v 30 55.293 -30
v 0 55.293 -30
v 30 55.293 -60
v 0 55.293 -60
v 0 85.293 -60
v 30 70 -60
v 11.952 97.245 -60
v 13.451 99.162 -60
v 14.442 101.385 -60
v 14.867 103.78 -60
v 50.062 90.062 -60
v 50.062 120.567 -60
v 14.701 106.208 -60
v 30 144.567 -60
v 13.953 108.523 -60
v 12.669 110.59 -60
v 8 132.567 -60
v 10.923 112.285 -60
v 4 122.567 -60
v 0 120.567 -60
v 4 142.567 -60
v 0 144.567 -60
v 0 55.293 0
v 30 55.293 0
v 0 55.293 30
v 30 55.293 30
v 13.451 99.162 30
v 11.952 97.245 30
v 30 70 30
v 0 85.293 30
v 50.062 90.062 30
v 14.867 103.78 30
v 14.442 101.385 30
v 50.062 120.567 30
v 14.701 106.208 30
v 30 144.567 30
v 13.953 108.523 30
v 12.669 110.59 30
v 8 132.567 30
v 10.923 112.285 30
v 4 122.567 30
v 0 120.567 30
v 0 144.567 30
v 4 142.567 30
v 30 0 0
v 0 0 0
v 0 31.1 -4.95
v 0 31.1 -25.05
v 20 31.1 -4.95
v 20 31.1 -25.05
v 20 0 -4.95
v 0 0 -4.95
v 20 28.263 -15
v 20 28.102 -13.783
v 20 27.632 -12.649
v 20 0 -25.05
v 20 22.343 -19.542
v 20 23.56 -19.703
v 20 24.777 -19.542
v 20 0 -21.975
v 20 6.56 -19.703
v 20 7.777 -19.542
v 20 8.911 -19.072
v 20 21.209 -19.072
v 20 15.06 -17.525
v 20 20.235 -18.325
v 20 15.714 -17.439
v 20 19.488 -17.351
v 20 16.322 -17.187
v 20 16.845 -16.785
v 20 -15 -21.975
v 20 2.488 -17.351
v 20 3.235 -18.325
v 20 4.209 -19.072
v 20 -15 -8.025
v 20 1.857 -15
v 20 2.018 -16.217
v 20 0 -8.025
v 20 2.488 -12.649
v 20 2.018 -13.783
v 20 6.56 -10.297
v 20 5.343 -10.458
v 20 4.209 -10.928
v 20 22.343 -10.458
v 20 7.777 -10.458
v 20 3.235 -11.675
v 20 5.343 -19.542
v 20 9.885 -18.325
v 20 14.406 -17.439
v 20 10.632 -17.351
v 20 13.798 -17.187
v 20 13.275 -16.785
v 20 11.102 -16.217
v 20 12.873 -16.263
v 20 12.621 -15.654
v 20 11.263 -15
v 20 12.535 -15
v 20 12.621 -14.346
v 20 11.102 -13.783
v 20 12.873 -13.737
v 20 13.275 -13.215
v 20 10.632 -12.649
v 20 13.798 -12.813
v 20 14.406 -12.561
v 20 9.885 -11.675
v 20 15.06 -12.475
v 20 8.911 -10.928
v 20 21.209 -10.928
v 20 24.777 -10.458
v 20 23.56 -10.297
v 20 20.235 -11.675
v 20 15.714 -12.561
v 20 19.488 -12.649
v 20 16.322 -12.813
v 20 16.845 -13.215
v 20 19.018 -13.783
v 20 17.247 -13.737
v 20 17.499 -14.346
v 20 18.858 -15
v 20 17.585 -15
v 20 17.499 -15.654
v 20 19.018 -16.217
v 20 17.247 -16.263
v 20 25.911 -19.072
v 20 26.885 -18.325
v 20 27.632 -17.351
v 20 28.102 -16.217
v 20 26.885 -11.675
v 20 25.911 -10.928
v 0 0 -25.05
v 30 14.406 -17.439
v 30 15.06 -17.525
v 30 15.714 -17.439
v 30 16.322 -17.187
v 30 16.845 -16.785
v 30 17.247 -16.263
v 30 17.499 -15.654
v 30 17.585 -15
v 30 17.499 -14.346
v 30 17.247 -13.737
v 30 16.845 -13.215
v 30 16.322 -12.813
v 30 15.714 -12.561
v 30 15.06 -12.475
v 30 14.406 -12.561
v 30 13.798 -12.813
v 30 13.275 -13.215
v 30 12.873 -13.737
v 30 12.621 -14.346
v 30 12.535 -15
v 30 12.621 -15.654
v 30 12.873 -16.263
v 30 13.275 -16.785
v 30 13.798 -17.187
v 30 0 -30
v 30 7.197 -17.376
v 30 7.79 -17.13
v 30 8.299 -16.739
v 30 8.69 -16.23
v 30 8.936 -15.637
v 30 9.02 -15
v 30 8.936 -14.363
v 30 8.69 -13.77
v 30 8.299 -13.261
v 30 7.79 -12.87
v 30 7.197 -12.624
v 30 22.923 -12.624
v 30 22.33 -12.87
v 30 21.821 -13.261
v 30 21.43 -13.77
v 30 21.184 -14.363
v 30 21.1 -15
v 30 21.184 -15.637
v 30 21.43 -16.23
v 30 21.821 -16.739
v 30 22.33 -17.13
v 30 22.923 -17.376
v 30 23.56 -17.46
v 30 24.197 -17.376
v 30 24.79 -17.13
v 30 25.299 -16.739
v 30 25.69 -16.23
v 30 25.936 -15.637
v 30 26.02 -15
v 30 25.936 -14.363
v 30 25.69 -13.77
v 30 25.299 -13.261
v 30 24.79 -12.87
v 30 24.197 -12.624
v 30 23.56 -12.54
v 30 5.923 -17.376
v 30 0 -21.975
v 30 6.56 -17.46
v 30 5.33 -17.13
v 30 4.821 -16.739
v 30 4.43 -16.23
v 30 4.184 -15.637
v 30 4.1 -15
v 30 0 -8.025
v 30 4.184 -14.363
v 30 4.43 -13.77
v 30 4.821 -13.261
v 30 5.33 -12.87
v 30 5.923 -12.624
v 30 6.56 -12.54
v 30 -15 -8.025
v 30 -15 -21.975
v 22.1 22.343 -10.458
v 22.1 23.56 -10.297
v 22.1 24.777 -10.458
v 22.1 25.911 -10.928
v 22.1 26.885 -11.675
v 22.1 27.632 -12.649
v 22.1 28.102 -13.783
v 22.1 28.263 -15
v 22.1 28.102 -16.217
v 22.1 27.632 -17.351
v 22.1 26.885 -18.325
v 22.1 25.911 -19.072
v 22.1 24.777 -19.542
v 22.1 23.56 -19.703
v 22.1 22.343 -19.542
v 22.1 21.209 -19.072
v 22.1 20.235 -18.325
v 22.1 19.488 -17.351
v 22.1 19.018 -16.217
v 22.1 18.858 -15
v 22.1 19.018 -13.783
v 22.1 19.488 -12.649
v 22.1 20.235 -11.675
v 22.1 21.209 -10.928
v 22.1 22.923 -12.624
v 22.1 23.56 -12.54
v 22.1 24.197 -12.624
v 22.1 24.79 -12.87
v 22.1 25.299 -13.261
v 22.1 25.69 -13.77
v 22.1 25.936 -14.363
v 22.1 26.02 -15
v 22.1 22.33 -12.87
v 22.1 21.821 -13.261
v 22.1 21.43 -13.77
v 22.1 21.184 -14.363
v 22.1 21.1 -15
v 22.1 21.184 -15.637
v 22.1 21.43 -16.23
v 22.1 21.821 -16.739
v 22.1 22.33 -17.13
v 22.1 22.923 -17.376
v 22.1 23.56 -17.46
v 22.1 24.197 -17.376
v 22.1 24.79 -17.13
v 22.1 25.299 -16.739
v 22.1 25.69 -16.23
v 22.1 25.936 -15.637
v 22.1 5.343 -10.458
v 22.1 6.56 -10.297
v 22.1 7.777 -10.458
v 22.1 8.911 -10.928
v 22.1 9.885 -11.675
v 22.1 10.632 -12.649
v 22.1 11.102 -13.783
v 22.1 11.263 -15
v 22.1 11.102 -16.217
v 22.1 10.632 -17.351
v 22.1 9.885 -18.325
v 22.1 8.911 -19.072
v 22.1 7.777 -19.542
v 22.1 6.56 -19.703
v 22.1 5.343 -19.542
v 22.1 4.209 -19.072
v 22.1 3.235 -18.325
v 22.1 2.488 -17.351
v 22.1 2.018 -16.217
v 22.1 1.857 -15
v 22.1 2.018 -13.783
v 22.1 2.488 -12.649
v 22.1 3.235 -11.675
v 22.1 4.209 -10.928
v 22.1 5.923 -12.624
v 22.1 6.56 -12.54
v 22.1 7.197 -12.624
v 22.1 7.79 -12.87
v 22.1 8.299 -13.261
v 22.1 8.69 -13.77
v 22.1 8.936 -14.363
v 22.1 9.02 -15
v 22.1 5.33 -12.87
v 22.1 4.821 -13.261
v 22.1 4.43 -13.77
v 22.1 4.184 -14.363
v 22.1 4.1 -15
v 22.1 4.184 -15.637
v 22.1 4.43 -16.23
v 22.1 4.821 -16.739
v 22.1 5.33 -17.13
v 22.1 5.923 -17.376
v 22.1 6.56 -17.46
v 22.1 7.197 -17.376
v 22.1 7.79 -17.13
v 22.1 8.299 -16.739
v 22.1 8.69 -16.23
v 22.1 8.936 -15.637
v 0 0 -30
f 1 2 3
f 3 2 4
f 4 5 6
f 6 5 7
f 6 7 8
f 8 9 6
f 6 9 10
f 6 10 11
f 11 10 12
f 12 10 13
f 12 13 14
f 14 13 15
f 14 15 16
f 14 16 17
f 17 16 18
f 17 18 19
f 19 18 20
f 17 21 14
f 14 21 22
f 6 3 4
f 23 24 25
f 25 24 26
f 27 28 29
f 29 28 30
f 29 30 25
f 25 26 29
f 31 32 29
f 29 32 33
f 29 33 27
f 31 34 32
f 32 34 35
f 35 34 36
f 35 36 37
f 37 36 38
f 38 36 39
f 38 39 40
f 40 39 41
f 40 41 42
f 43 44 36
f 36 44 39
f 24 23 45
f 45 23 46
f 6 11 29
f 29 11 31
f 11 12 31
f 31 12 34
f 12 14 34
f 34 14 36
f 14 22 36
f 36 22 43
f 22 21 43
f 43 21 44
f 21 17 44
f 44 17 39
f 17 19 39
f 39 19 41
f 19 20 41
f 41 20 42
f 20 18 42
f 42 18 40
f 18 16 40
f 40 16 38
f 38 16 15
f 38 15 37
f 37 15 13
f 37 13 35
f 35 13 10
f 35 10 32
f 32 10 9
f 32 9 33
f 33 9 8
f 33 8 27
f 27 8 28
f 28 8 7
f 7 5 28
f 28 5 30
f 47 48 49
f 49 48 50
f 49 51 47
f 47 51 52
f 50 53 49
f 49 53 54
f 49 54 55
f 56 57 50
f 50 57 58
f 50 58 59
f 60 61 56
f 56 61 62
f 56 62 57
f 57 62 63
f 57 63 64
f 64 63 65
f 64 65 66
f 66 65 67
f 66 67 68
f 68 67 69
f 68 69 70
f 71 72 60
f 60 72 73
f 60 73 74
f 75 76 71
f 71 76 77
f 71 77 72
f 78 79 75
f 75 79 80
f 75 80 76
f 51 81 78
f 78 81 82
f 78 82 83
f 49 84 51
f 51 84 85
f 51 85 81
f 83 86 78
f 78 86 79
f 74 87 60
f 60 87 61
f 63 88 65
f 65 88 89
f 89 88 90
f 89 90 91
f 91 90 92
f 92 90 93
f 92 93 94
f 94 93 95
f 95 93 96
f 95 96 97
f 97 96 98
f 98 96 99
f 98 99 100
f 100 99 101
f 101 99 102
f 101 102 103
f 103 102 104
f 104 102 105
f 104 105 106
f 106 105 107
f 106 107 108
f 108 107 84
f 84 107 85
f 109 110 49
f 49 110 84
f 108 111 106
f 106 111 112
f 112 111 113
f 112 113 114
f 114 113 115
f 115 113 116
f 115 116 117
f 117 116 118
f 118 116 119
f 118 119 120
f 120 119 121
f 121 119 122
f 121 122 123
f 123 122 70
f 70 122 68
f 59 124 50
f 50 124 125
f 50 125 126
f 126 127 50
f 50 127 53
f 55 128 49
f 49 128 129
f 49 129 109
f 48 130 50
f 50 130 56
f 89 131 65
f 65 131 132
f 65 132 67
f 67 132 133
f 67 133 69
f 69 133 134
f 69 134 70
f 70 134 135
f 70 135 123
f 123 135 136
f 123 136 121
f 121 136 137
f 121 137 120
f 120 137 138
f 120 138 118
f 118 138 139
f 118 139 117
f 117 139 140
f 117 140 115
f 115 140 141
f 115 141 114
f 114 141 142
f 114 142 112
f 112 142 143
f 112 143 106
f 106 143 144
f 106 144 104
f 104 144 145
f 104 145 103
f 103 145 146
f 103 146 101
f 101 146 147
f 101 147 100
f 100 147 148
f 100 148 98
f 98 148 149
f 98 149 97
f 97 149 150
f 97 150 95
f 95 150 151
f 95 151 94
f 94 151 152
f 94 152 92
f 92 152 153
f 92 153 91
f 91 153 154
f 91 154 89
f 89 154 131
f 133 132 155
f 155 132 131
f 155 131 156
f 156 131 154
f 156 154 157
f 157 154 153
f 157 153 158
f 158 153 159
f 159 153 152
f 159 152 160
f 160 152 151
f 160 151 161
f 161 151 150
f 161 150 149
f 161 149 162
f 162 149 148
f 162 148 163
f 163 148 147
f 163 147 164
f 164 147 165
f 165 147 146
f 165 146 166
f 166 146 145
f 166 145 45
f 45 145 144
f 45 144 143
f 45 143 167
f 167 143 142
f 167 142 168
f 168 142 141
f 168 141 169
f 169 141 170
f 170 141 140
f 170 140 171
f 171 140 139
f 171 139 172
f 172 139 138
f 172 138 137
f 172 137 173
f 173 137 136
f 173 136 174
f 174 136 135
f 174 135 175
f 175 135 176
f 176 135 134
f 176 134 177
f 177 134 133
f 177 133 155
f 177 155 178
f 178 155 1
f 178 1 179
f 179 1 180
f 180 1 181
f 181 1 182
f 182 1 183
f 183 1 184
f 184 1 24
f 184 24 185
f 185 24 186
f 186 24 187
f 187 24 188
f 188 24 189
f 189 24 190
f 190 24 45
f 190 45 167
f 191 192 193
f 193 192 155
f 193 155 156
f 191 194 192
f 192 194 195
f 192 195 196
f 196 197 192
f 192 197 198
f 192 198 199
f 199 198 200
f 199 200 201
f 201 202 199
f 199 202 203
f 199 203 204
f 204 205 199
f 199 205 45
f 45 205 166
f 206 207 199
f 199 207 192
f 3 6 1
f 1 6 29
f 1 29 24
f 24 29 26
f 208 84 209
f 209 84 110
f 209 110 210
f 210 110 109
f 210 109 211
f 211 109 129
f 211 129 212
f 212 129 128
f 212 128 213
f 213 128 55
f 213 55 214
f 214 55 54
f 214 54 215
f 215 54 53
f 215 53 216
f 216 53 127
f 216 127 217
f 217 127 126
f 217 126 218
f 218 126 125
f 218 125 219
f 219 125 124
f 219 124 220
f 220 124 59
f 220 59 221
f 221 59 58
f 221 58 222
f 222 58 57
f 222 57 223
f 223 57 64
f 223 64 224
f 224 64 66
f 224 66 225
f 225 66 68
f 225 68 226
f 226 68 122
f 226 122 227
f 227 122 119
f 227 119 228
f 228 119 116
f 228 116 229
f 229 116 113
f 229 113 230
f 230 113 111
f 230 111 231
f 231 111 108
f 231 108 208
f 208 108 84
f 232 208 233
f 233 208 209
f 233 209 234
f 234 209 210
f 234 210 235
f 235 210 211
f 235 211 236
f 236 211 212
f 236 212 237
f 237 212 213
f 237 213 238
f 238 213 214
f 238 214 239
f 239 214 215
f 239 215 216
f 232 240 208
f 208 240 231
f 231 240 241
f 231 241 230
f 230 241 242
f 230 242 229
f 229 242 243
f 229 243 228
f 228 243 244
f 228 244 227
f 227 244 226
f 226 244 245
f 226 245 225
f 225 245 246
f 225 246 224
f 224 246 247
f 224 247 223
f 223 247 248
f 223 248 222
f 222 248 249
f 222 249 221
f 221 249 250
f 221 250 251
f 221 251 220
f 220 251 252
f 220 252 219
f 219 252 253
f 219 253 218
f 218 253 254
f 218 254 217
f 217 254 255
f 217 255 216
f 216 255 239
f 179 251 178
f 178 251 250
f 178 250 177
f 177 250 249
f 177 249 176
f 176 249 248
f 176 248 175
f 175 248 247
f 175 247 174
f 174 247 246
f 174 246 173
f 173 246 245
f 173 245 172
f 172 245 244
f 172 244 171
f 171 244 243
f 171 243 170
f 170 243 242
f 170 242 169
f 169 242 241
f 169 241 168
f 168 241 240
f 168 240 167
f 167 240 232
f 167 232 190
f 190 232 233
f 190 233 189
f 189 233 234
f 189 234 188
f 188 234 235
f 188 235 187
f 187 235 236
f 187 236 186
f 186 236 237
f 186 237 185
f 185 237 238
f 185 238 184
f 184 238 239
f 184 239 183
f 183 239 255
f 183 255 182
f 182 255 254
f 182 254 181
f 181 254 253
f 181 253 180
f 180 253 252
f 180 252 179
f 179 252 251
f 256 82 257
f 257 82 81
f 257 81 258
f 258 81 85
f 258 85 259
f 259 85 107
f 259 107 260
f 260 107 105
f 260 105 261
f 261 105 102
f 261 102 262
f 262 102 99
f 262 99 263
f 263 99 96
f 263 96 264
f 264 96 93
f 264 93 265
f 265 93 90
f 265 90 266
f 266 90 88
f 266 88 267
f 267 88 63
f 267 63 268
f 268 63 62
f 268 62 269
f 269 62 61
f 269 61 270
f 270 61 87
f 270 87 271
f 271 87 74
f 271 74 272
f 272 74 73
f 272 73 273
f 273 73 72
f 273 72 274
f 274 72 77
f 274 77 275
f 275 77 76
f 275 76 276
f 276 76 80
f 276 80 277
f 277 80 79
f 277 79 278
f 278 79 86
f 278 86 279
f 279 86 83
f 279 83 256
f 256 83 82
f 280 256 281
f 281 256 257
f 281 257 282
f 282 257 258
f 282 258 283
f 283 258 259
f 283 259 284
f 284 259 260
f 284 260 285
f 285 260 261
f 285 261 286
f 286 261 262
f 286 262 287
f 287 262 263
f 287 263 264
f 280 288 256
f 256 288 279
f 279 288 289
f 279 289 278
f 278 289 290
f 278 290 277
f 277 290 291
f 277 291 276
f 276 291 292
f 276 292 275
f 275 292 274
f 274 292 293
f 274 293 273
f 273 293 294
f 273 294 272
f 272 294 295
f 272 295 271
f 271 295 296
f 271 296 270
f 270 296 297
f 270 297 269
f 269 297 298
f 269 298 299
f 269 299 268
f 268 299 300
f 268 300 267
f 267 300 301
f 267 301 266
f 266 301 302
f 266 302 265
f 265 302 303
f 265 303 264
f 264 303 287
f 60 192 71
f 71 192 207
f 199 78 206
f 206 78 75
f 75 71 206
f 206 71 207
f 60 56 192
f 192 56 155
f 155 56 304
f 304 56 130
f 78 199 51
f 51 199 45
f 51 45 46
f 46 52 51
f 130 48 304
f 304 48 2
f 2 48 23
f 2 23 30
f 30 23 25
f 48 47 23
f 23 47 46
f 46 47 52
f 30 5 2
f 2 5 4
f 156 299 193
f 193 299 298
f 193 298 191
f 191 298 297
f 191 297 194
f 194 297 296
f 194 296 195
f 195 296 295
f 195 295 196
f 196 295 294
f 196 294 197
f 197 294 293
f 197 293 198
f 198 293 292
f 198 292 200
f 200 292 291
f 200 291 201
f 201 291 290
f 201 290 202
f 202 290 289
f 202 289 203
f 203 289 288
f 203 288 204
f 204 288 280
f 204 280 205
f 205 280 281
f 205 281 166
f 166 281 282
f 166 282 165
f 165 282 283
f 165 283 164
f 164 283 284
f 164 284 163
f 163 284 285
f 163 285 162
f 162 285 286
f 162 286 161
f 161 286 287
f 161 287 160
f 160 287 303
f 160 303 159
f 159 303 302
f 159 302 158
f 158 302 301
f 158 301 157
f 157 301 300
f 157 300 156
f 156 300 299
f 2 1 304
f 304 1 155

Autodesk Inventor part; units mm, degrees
ref_plane "YZ Plane" through (0, 0, 0) normal (1, 0, 0) x (0, 1, 0)
ref_plane "XZ Plane" through (0, 0, 0) normal (0, 1, 0) x (-1, 0, 0)
sketch "Sketch1" plane through (0, 0, 0) normal (0, 0, 1) x (1, 0, 0)
  line L0 (0, 0) -> (25, 0)
  line L1 (25, 0) -> (25, 40)
  line L2 (25, 40) -> (0, 40)
  line L3 (0, 40) -> (0, 0)
  dimension "d1" = 25
  dimension "d2" = 40
  dimension "d3" = 25
extrude "Extrusion1" add sketch "Sketch1" against normal blind 30
sketch "Sketch2" plane through (25, 0, 0) normal (1, 0, 0) x (0, 0, -1)
  line L0 (0, 0) -> (30, 0) projected
  circle A0 centre (15, 6.56) radius 2.46
extrude "Extrusion2" cut sketch "Sketch2" against normal blind 30
sketch "Sketch3" plane through (0, 0, 0) normal (-1, 0, 0) x (0, 0, 1)
  line L0 (0, 0) -> (-30, 0) projected
  line L1 (-25.05, 0) -> (-4.95, 0)
  line L2 (-4.95, 0) -> (-4.95, 33.12)
  line L3 (-4.95, 33.12) -> (-25.05, 33.12)
  line L4 (-25.05, 33.12) -> (-25.05, 0)
  dimension "d11" = 20.1
extrude "Extrusion3" cut sketch "Sketch3" against normal blind 20
sketch "Sketch4" plane through (0, 0, 0) normal (0, -1, 0) x (1, 0, 0)
  line L0 (20, -4.95) -> (20, -25.05) projected
  line L1 (20, -15) -> (25, -15)
  line L2 (25, 0) -> (25, -30) projected
  line L3 (20, -8.025) -> (25, -8.025)
  line L4 (25, -8.025) -> (25, -21.975)
  line L5 (25, -21.975) -> (20, -21.975)
  line L6 (20, -21.975) -> (20, -8.025)
  line L7 (20, -8.025) -> (25, -21.975) construction
  line L8 (25, -8.025) -> (20, -21.975) construction
  line L9 (25, -12.54) -> (25, -17.46) projected
  point P0 (0, 0)
  point P1 (22.5, -15)
  dimension "d14" = 13.95
extrude "Extrusion4" add sketch "Sketch4" along normal blind 15
sketch "Sketch5" plane through (20, 0, 0) normal (-1, 0, 0) x (0, 0, 1)
  circle A0 centre (-15, 6.56) radius 2.46 projected
  circle A1 centre (-15, 6.56) radius 4.7025
  circle A2 centre (-15, 6.56) radius 2.46 projected
  circle A3 centre (-15, 6.56) radius 2.46
  point P0 (0, 0)
  dimension "d17" = 9.405
extrude "Extrusion5" cut sketch "Sketch5" against normal blind 2.1
sketch "Sketch6" plane through (25, 0, 0) normal (1, 0, 0) x (0, 0, -1)
  circle A0 centre (15, 6.56) radius 4.7025 projected
  line L0 (15, 6.56) -> (15, 23.56)
  circle A1 centre (15, 23.56) radius 2.46
  point P0 (0, 0)
  dimension "d20" = 17
  dimension "d21" = 4.92
extrude "Extrusion6" cut sketch "Sketch6" against normal blind 10 contours A1
sketch "Sketch7" plane through (20, 0, 0) normal (-1, 0, 0) x (0, 0, 1)
  circle A0 centre (-15, 23.56) radius 2.46 projected
  circle A1 centre (-15, 23.56) radius 4.7025
  point P0 (0, 0)
  dimension "d24" = 9.405
extrude "Extrusion7" cut sketch "Sketch7" against normal blind 2.1
sketch "Sketch9" plane through (25, 0, 0) normal (1, 0, 0) x (0, 0, -1)
  circle A0 centre (15, 6.56) radius 2.46 projected
  circle A1 centre (15, 6.56) radius 2.46
  circle A2 centre (15, 23.56) radius 2.46 projected
  circle A3 centre (15, 23.56) radius 2.46
  line L0 (30, 40) -> (30, 0) projected
  line L1 (30, 0) -> (30, 40)
  line L2 (30, 40) -> (0, 40)
  line L3 (0, 40) -> (0, 0)
  line L4 (0, 0) -> (8.025, 0) projected
  line L5 (21.975, 0) -> (21.975, -15)
  line L6 (21.975, -15) -> (8.025, -15)
  line L7 (8.025, -15) -> (8.025, 0)
  line L8 (0, 0) -> (8.025, 0)
  line L9 (21.975, 0) -> (30, 0)
extrude "Extrusion8" add sketch "Sketch9" along normal blind 5
sketch "Sketch10" plane through (0, 40, 0) normal (0, 1, 0) x (1, 0, 0)
  line L0 (0, 30) -> (30, 30) projected
  line L1 (30, 0) -> (0, 0) projected
  line L2 (0, 30) -> (30, 30)
  line L3 (30, 30) -> (30, 0)
  line L4 (30, 0) -> (0, 0)
  line L5 (0, 0) -> (0, 30)
extrude "Extrusion9" add sketch "Sketch10" along normal blind 30
sketch "Sketch12" plane through (30, 0, 0) normal (1, 0, 0) x (0, 0, -1)
  circle A0 centre (15, 6.56) radius 2.46 projected
  line L0 (15, 6.56) -> (15, 15.06)
  circle A1 centre (15, 15.06) radius 2.525
  point P0 (0, 0)
  dimension "d31" = 8.5
  dimension "d33" = 5.05
extrude "Extrusion10" cut sketch "Sketch12" against normal blind 30 contours A1
sketch "Sketch15" plane through (0, 0, -25.05) normal (-1, 0, 0) x (0, 0, 1)
  line L0 (0, 33.12) -> (20.1, 33.12) projected
  line L1 (20.1, 33.12) -> (20.1, 0) projected
  line L2 (0, 33.12) -> (20.1, 33.12)
  line L3 (20.1, 33.12) -> (20.1, 31.1)
  line L4 (20.1, 31.1) -> (0, 31.1)
  line L5 (0, 31.1) -> (0, 33.12)
  point P0 (25.05, 0)
  dimension "d57" = 2.02
extrude "Extrusion13" add sketch "Sketch15" against normal blind 20
sketch "Sketch17" plane through (0, 0, 0) normal (0, 0, 1) x (1, 0, 0)
  line L0 (0, 70) -> (30, 70) projected
  line L1 (30, 70) -> (50.0622, 90.0622)
  line L2 (30, 70) -> (80, 70) construction
  line L3 (11.9522, 97.2454) -> (0, 85.2932)
  line L4 (0, 70) -> (0, 85.2932)
  line L5 (0, 70) -> (0, 0) projected
  line L6 (0, 70) -> (30, 70)
  line L7 (10.923, 112.2849) -> (0, 120.567)
  line L8 (50.0622, 105.3553) -> (50.0622, 120.567)
  line L9 (50.0622, 105.3553) -> (50.0622, 90.0622)
  arc A0 (11.9522, 97.2454) -> (10.923, 112.2849) centre (4.8811, 104.3165) ccw
  line L10 (0, 144.567) -> (30, 144.567)
  line L11 (30, 144.567) -> (50.0622, 120.567)
  line L12 (4, 142.567) -> (0, 144.567)
  line L13 (4, 122.567) -> (0, 120.567)
  line L14 (4, 122.567) -> (8, 132.567)
  line L15 (8, 132.567) -> (4, 142.567)
  dimension "d61" = 45
  dimension "d62" = 32.0271
  dimension "d72" = 10
extrude "Extrusion14" add sketch "Sketch17" against normal blind 30
sketch "Sketch22" plane through (0, 0, 0) normal (0, 0, 1) x (1, 0, 0)
  line L0 (11.9522, 97.2454) -> (0, 85.2932) projected
  line L1 (0, 85.2932) -> (11.9522, 97.2454)
  arc A0 (11.9522, 97.2454) -> (10.923, 112.2849) centre (4.8811, 104.3165) ccw projected
  arc A1 (11.9522, 97.2454) -> (10.923, 112.2849) centre (4.8811, 104.3165) ccw
  line L2 (0, 120.567) -> (10.923, 112.2849) projected
  line L3 (10.923, 112.2849) -> (0, 120.567)
  line L4 (0, 120.567) -> (4, 122.567) projected
  line L5 (0, 120.567) -> (4, 122.567)
  line L6 (4, 122.567) -> (8, 132.567) projected
  line L7 (4, 122.567) -> (8, 132.567)
  line L8 (8, 132.567) -> (4, 142.567) projected
  line L9 (8, 132.567) -> (4, 142.567)
  line L10 (4, 142.567) -> (0, 144.567) projected
  line L11 (4, 142.567) -> (0, 144.567)
  line L12 (0, 144.567) -> (30, 144.567) projected
  line L13 (0, 144.567) -> (30, 144.567)
  line L14 (50.0622, 120.567) -> (30, 144.567) projected
  line L15 (30, 144.567) -> (50.0622, 120.567)
  line L16 (50.0622, 120.567) -> (50.0622, 90.0622) projected
  line L17 (50.0622, 120.567) -> (50.0622, 90.0622)
  line L18 (30, 70) -> (50.0622, 90.0622) projected
  line L19 (50.0622, 90.0622) -> (30, 70)
  line L20 (0, 0) -> (0, 85.2932) projected
  line L21 (0, 85.2932) -> (0, 55.2932)
  line L22 (0, 55.2932) -> (30, 55.2932)
  line L23 (30, 0) -> (30, 70) projected
  line L24 (30, 55.2932) -> (30, 70)
  dimension "d83" = 30
extrude "Extrusion15" add sketch "Sketch22" along normal blind 30
ref_plane "Work Plane1" through (0, 0, -15) normal (0, 0, 1) x (1, 0, 0)
mirror "Mirror1" about plane through (0, 0, -15) normal (0, 0, 1) of "Extrusion15"
properties part number "rec_c_20mm_x_90mm"
